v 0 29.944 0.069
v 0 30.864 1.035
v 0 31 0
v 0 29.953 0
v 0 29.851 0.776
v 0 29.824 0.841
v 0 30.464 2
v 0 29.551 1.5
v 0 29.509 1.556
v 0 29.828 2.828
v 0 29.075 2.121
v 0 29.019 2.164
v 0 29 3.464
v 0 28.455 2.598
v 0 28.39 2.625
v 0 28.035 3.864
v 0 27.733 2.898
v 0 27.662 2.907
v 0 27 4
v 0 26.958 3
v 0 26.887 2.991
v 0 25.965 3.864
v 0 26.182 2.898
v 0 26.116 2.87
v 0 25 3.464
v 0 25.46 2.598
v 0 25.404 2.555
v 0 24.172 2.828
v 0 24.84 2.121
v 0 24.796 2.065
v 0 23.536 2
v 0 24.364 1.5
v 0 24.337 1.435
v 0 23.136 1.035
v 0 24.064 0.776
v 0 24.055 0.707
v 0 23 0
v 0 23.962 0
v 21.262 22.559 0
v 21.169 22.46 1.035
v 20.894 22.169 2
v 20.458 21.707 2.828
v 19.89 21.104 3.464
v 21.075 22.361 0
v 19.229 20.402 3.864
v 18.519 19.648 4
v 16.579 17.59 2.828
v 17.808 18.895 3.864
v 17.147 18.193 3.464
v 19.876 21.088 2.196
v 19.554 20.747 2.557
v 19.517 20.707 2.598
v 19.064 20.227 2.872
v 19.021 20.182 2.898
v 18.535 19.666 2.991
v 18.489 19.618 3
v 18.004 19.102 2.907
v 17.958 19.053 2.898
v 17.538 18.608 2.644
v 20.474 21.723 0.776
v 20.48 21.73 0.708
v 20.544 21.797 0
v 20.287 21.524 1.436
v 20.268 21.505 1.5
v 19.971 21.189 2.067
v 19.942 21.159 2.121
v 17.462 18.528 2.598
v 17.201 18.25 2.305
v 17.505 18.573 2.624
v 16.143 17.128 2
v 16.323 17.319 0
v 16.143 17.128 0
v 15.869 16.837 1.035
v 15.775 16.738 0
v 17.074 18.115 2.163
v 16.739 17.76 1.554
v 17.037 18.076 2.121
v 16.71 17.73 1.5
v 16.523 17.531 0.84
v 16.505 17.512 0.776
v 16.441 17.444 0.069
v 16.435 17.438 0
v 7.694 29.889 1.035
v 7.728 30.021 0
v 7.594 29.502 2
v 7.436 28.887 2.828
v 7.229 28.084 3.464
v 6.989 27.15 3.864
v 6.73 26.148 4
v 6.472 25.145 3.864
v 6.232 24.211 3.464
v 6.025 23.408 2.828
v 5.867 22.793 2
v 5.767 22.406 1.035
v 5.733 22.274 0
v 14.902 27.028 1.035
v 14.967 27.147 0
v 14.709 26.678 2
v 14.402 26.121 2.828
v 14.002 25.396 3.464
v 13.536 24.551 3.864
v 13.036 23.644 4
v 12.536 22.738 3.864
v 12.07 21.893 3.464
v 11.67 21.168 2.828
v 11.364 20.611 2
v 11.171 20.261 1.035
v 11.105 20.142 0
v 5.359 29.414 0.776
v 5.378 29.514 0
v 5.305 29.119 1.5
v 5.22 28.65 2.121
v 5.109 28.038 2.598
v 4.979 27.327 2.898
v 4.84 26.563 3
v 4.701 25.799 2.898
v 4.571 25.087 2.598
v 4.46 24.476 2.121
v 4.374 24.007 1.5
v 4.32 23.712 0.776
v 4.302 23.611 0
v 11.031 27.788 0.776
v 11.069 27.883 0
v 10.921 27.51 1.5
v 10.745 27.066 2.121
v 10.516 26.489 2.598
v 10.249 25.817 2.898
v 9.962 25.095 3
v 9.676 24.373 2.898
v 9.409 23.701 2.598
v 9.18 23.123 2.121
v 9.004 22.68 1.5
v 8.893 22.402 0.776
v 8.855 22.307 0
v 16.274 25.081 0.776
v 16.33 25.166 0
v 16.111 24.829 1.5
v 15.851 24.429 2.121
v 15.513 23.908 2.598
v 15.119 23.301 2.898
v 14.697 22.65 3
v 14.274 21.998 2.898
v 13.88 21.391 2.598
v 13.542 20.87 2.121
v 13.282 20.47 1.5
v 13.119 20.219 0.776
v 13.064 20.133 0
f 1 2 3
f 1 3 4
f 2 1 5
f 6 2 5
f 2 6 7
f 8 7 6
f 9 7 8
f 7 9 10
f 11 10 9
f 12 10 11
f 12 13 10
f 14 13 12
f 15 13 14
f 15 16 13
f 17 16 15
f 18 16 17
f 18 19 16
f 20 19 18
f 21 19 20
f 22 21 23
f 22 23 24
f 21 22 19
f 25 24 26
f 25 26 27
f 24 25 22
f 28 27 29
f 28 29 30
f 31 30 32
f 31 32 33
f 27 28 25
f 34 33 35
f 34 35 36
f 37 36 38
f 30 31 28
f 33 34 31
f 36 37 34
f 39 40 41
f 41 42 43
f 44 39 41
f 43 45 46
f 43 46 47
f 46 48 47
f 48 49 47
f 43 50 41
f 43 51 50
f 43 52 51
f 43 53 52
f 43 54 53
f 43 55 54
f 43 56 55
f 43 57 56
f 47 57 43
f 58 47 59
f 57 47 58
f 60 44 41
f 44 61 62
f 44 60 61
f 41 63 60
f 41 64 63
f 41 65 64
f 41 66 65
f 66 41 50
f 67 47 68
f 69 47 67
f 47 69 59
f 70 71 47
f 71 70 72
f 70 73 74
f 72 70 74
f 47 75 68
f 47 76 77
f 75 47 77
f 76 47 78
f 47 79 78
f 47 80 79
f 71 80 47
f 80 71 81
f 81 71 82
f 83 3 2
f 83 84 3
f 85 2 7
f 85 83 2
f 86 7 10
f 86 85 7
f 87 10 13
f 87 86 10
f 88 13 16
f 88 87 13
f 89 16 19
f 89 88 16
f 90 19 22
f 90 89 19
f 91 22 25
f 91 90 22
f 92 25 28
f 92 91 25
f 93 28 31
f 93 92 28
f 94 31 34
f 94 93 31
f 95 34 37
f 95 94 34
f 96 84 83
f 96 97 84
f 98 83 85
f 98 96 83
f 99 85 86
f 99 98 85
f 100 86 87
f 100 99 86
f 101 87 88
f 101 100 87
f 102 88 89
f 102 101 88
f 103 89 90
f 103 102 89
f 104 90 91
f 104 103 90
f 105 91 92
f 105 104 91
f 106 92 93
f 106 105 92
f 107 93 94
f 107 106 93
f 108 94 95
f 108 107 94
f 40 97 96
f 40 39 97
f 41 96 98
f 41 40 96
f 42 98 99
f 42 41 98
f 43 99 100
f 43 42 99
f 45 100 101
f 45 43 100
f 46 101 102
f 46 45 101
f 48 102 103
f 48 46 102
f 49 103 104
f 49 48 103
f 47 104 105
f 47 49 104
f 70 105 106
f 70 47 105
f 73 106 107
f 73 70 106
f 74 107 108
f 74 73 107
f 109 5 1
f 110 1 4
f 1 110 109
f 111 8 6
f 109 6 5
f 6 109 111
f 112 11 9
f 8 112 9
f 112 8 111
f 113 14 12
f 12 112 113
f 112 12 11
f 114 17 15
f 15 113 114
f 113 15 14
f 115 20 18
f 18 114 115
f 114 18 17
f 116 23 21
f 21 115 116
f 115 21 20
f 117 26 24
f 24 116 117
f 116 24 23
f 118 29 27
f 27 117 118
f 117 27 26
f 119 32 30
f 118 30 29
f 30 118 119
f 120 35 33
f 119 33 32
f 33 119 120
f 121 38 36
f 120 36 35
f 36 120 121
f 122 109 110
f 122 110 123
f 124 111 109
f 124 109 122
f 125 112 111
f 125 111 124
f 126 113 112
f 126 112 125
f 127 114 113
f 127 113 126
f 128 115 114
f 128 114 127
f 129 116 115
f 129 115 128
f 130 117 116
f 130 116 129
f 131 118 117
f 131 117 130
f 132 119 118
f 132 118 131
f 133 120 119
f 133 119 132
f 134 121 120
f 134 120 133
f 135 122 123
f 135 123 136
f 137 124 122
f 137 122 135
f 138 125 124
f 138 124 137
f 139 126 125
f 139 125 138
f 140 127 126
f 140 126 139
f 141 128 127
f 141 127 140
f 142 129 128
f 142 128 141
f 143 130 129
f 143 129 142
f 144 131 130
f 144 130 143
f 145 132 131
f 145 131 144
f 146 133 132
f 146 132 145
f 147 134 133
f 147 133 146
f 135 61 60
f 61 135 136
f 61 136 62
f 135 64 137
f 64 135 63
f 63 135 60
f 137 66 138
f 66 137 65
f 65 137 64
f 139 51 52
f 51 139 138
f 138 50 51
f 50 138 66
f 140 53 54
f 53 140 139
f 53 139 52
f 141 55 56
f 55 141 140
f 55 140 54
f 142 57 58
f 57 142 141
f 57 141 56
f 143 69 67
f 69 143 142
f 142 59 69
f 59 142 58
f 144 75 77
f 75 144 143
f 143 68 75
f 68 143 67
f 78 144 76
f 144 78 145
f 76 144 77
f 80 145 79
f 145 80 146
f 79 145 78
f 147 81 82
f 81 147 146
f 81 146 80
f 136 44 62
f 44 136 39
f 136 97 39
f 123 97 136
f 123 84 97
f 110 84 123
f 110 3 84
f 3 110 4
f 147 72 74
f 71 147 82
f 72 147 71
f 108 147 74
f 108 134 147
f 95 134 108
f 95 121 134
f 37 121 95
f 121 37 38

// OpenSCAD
// file: ../build_environments.scad
// build_environments.scad: modules to build level sections
//

module pool(diameter=10.0, wall_height=2.0, step_width=3.0, connections=[])
{
    difference() {
        union() {
        difference() {
            cylinder(h=0.5,r1=diameter+step_width,r2=diameter+step_width,$fn=48);
            translate([0,0,-0.1])
                cylinder(h=0.7,r1=diameter,r2=diameter,$fn=48);
        }
        difference() {
            cylinder(h=wall_height,r1=diameter+step_width+1.0,r2=diameter+step_width+1.0,$fn=48);
            translate([0,0,-0.1])
                cylinder(h=wall_height+0.2,r1=diameter+step_width,r2=diameter+step_width,$fn=48);
        }
        }
    
        for (c = connections)
        {
            rotate([0,90,0]) {
                angle = atan2(c[1],c[0]);
                rotate([-angle,0,0]) {
                    cylinder(h=diameter+5.0,r1=c[2],r2=c[2],$fn=48);
                }
            }
        }
    }
}

module straight(length=10.0, width=2.0, dy1=0.0, dy2=0.0, dz=0.0)
{
    dims = [0, 0, 0, 0, 0, (dz/length)];
    matrix = [
        [ 1, dims[0], dims[1], 0 ],
        [ dims[2], 1, dims[4], 0 ],
        [ dims[5], dims[3], 1, 0 ],
        [ 0, 0, 0, 1 ]
    ];
    multmatrix(matrix)
    difference() {
        translate([dy1,0,0])
        union() {
            rotate([0,90,0]) {
                difference() {
                    cylinder(h=(length-dy1-dy2),r1=width+1.0,r2=width+1.0,$fn=24);
                    translate([0,0,-0.1])
                        cylinder(h=(length-dy1-dy2+0.2),r1=width,r2=width,$fn=24);
                }
                difference() {
                    cylinder(h=1.0,r1=width+2.0,r2=width+2.0,$fn=24);
                    translate([0,0,-0.1])
                        cylinder(h=1.2,r1=width,r2=width,$fn=24);
                }
                translate([0,0,(length-dy1-dy2)-1.0]) {
                    difference() {
                        cylinder(h=1.0,r1=width+2.0,r2=width+2.0,$fn=24);
                        translate([0,0,-0.1])
                            cylinder(h=1.2,r1=width,r2=width,$fn=24);
                    }
                }
            }
        }
        translate([0,0,-(2*width+4.0)/2])
            cube([3*length,3*length,2*width+4.0],center=true);
    }
}

module curve(p0=[0,0], center=[0,0], dir=1, angle=0.0, width=2.0)
{
    radius = sqrt((p0[0]-center[0])*(p0[0]-center[0]) + (p0[1]-center[1])*(p0[1]-center[1]));
    if (dir == 0) {
        difference() {
            rotate([0,0,-90])
            difference() {
                rotate_extrude(angle = angle, convexity = 10, $fn=32)
                    translate([radius, 0, 0])
                        circle(r = width+1.0,$fn=24);
                rotate([0,0,-1.0])
                    rotate_extrude(angle = angle+2.0, convexity = 10, $fn=32)
                        translate([radius, 0, 0])
                            circle(r = width,$fn=24);
            }
            translate([0,0,-(2*width+4.0)/2])
                cube([5*radius,5*radius,2*width+4.0],center=true);
        }
    }
    else {
        difference() {
            rotate([0,0,90])
            difference() {
                rotate_extrude(angle = -angle, convexity = 10, $fn=32)
                    translate([radius, 0, 0])
                        circle(r = width+1.0,$fn=24);
                rotate([0,0,1.0])
                    rotate_extrude(angle = -angle-2.0, convexity = 10, $fn=32)
                        translate([radius, 0, 0])
                            circle(r = width,$fn=24);
            }
            translate([0,0,-(2*width+4.0)/2])
                cube([5*radius,5*radius,2*width+4.0],center=true);
        }
    }

}

// test pool
//pool(diameter=12.0000, wall_height=3.0000, step_width=3.0000, connections=[[0.0000,-26.0000,2.0000], [23.6074,0.0000,2.0000]]);

// test straight, slope
//straight(length=26.0000, width=2.0000, dy1=11.8322, dy2=6.7082, dz=0.0000);
//straight(length=29.1549, width=12.0000, dy1=0.0000, dy2=0.0000, dz=-15.0000);

// test curve
//curve(p0=[23.6074, 0.0000], center=[23.6074, 5.0000], dir=0, angle=60.1011, width=2.0000);
//curve(p0=[33.6426, 12.4219], center=[37.9771, 9.9295], dir=1, angle=120.4627, width=2.0000);
// main file
use <../build_environments.scad>;
curve(p0=[-48.8597, -99.1285], center=[-59.6354, -74.3720], dir=1, angle=43.3043, width=3.0000);
